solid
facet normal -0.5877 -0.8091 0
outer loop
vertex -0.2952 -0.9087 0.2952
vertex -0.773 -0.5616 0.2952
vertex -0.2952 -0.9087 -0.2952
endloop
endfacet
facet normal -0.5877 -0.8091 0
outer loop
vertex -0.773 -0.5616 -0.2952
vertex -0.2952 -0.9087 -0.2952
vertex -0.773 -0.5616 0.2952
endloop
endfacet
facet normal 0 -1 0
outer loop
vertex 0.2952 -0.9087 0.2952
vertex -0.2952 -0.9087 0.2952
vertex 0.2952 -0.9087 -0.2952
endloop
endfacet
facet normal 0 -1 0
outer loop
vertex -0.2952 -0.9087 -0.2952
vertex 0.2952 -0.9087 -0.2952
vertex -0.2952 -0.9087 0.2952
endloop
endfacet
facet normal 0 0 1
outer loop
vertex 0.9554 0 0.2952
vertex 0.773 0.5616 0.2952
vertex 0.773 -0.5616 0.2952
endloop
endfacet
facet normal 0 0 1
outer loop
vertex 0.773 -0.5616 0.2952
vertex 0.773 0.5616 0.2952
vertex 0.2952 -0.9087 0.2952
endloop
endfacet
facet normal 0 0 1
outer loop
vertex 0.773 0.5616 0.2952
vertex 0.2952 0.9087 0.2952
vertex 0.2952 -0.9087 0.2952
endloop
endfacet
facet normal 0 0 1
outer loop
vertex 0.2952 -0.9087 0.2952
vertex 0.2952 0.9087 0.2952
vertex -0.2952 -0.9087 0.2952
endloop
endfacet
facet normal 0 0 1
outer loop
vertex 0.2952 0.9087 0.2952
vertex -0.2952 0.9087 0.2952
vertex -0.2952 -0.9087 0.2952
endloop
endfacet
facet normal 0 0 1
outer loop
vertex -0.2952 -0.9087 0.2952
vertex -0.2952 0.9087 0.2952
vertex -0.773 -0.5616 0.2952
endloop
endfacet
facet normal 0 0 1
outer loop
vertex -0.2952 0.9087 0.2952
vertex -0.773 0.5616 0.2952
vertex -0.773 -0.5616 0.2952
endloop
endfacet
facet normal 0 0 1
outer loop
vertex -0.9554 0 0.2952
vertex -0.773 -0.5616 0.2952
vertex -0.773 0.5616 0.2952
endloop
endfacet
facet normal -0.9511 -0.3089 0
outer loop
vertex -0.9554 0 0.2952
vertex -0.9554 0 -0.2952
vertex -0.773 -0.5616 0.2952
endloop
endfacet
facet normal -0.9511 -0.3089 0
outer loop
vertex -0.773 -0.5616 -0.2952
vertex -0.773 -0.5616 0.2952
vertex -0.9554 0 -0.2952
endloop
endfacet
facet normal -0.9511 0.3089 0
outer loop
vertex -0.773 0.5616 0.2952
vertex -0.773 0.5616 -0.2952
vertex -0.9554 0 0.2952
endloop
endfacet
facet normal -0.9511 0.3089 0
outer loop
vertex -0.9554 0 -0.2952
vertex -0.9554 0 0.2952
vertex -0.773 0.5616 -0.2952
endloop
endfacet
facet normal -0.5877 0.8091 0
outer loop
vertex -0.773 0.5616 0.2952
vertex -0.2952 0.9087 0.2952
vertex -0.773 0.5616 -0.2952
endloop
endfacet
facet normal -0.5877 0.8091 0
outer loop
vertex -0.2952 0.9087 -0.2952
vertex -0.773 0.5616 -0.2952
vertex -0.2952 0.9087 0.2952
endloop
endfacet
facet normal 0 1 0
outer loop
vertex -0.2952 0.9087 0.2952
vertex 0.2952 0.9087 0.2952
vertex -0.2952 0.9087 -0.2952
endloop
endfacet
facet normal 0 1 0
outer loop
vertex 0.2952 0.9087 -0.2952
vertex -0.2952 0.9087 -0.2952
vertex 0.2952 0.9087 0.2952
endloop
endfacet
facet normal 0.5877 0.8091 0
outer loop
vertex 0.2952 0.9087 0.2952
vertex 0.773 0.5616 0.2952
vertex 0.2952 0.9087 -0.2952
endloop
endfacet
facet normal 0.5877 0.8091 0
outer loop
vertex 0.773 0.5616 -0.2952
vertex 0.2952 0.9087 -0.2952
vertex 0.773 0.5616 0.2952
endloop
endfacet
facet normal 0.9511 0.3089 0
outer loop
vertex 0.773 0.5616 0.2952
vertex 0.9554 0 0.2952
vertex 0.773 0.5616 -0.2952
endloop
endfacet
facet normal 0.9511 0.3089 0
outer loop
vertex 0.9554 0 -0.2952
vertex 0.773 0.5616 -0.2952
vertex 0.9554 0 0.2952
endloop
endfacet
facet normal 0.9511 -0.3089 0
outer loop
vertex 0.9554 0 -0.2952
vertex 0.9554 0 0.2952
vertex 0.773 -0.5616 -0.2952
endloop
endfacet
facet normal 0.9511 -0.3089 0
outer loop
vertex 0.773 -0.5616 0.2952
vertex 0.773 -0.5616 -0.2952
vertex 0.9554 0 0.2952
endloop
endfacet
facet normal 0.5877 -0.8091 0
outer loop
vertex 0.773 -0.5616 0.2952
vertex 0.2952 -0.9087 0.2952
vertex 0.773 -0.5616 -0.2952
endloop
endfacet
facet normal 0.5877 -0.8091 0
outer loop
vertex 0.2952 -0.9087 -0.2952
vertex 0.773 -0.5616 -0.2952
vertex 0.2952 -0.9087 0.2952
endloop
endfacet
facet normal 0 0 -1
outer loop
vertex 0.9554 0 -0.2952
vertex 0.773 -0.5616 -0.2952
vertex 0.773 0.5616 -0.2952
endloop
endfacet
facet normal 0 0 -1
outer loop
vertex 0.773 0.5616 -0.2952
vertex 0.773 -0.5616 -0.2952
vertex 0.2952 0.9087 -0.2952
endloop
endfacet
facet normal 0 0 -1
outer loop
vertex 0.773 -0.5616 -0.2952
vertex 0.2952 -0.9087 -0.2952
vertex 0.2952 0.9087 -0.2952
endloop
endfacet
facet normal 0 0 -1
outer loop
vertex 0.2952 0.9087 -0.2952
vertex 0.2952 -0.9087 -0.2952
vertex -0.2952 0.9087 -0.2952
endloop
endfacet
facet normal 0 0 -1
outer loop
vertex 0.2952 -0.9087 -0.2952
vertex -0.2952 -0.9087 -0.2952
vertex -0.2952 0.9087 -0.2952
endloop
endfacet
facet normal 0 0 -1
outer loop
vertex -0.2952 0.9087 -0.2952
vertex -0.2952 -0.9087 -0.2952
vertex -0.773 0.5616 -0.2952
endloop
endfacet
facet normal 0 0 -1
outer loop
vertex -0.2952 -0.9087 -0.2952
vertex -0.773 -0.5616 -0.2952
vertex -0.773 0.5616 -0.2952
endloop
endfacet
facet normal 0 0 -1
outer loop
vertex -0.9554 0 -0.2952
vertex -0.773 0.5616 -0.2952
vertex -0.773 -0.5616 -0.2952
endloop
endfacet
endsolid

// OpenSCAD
polyhedron( points = [[-0.295241808852514, -0.908660854567026, 0.295241808820297], [-0.772953090543874, -0.561583292257875, 0.295241808820297], [-0.955422563219112, 1.06288633336856e-10, 0.295241808820297], [-0.772953090392594, 0.561583292421292, 0.295241808820297], [-0.295241808770922, 0.908660854548737, 0.295241808820297], [0.295241808885784, 0.908660854495717, 0.295241808820297], [0.772953090445124, 0.561583292282481, 0.295241808820297], [0.955422563170789, -6.52940989406422e-11, 0.295241808820297], [0.772953090394696, -0.561583292396687, 0.295241808820297], [0.295241808804192, -0.908660854567026, 0.295241808820297], [-0.295241808826003, -0.908660854485435, -0.295241808836409], [-0.772953090472801, -0.561583292208659, -0.295241808728307], [-0.95542256313332, 1.06288633336856e-10, -0.295241808836409], [-0.772953090298612, 0.561583292446506, -0.295241808809898], [-0.295241808744412, 0.908660854467144, -0.295241808836409], [0.295241808938804, 0.908660854414124, -0.295241808809898], [0.772953090375718, 0.561583292232054, -0.295241808836409], [0.955422563109574, -1.40935035642834e-10, -0.295241808809898], [0.772953090325291, -0.56158329234626, -0.295241808836409], [0.295241808804192, -0.908660854485435, -0.295241808862922]], faces = [[0, 1, 11, 10], [0, 10, 19, 9], [0, 9, 8, 7, 6, 5, 4, 3, 2, 1], [1, 2, 12, 11], [2, 3, 13, 12], [3, 4, 14, 13], [4, 5, 15, 14], [5, 6, 16, 15], [6, 7, 17, 16], [7, 8, 18, 17], [8, 9, 19, 18], [10, 11, 12, 13, 14, 15, 16, 17, 18, 19]]);
